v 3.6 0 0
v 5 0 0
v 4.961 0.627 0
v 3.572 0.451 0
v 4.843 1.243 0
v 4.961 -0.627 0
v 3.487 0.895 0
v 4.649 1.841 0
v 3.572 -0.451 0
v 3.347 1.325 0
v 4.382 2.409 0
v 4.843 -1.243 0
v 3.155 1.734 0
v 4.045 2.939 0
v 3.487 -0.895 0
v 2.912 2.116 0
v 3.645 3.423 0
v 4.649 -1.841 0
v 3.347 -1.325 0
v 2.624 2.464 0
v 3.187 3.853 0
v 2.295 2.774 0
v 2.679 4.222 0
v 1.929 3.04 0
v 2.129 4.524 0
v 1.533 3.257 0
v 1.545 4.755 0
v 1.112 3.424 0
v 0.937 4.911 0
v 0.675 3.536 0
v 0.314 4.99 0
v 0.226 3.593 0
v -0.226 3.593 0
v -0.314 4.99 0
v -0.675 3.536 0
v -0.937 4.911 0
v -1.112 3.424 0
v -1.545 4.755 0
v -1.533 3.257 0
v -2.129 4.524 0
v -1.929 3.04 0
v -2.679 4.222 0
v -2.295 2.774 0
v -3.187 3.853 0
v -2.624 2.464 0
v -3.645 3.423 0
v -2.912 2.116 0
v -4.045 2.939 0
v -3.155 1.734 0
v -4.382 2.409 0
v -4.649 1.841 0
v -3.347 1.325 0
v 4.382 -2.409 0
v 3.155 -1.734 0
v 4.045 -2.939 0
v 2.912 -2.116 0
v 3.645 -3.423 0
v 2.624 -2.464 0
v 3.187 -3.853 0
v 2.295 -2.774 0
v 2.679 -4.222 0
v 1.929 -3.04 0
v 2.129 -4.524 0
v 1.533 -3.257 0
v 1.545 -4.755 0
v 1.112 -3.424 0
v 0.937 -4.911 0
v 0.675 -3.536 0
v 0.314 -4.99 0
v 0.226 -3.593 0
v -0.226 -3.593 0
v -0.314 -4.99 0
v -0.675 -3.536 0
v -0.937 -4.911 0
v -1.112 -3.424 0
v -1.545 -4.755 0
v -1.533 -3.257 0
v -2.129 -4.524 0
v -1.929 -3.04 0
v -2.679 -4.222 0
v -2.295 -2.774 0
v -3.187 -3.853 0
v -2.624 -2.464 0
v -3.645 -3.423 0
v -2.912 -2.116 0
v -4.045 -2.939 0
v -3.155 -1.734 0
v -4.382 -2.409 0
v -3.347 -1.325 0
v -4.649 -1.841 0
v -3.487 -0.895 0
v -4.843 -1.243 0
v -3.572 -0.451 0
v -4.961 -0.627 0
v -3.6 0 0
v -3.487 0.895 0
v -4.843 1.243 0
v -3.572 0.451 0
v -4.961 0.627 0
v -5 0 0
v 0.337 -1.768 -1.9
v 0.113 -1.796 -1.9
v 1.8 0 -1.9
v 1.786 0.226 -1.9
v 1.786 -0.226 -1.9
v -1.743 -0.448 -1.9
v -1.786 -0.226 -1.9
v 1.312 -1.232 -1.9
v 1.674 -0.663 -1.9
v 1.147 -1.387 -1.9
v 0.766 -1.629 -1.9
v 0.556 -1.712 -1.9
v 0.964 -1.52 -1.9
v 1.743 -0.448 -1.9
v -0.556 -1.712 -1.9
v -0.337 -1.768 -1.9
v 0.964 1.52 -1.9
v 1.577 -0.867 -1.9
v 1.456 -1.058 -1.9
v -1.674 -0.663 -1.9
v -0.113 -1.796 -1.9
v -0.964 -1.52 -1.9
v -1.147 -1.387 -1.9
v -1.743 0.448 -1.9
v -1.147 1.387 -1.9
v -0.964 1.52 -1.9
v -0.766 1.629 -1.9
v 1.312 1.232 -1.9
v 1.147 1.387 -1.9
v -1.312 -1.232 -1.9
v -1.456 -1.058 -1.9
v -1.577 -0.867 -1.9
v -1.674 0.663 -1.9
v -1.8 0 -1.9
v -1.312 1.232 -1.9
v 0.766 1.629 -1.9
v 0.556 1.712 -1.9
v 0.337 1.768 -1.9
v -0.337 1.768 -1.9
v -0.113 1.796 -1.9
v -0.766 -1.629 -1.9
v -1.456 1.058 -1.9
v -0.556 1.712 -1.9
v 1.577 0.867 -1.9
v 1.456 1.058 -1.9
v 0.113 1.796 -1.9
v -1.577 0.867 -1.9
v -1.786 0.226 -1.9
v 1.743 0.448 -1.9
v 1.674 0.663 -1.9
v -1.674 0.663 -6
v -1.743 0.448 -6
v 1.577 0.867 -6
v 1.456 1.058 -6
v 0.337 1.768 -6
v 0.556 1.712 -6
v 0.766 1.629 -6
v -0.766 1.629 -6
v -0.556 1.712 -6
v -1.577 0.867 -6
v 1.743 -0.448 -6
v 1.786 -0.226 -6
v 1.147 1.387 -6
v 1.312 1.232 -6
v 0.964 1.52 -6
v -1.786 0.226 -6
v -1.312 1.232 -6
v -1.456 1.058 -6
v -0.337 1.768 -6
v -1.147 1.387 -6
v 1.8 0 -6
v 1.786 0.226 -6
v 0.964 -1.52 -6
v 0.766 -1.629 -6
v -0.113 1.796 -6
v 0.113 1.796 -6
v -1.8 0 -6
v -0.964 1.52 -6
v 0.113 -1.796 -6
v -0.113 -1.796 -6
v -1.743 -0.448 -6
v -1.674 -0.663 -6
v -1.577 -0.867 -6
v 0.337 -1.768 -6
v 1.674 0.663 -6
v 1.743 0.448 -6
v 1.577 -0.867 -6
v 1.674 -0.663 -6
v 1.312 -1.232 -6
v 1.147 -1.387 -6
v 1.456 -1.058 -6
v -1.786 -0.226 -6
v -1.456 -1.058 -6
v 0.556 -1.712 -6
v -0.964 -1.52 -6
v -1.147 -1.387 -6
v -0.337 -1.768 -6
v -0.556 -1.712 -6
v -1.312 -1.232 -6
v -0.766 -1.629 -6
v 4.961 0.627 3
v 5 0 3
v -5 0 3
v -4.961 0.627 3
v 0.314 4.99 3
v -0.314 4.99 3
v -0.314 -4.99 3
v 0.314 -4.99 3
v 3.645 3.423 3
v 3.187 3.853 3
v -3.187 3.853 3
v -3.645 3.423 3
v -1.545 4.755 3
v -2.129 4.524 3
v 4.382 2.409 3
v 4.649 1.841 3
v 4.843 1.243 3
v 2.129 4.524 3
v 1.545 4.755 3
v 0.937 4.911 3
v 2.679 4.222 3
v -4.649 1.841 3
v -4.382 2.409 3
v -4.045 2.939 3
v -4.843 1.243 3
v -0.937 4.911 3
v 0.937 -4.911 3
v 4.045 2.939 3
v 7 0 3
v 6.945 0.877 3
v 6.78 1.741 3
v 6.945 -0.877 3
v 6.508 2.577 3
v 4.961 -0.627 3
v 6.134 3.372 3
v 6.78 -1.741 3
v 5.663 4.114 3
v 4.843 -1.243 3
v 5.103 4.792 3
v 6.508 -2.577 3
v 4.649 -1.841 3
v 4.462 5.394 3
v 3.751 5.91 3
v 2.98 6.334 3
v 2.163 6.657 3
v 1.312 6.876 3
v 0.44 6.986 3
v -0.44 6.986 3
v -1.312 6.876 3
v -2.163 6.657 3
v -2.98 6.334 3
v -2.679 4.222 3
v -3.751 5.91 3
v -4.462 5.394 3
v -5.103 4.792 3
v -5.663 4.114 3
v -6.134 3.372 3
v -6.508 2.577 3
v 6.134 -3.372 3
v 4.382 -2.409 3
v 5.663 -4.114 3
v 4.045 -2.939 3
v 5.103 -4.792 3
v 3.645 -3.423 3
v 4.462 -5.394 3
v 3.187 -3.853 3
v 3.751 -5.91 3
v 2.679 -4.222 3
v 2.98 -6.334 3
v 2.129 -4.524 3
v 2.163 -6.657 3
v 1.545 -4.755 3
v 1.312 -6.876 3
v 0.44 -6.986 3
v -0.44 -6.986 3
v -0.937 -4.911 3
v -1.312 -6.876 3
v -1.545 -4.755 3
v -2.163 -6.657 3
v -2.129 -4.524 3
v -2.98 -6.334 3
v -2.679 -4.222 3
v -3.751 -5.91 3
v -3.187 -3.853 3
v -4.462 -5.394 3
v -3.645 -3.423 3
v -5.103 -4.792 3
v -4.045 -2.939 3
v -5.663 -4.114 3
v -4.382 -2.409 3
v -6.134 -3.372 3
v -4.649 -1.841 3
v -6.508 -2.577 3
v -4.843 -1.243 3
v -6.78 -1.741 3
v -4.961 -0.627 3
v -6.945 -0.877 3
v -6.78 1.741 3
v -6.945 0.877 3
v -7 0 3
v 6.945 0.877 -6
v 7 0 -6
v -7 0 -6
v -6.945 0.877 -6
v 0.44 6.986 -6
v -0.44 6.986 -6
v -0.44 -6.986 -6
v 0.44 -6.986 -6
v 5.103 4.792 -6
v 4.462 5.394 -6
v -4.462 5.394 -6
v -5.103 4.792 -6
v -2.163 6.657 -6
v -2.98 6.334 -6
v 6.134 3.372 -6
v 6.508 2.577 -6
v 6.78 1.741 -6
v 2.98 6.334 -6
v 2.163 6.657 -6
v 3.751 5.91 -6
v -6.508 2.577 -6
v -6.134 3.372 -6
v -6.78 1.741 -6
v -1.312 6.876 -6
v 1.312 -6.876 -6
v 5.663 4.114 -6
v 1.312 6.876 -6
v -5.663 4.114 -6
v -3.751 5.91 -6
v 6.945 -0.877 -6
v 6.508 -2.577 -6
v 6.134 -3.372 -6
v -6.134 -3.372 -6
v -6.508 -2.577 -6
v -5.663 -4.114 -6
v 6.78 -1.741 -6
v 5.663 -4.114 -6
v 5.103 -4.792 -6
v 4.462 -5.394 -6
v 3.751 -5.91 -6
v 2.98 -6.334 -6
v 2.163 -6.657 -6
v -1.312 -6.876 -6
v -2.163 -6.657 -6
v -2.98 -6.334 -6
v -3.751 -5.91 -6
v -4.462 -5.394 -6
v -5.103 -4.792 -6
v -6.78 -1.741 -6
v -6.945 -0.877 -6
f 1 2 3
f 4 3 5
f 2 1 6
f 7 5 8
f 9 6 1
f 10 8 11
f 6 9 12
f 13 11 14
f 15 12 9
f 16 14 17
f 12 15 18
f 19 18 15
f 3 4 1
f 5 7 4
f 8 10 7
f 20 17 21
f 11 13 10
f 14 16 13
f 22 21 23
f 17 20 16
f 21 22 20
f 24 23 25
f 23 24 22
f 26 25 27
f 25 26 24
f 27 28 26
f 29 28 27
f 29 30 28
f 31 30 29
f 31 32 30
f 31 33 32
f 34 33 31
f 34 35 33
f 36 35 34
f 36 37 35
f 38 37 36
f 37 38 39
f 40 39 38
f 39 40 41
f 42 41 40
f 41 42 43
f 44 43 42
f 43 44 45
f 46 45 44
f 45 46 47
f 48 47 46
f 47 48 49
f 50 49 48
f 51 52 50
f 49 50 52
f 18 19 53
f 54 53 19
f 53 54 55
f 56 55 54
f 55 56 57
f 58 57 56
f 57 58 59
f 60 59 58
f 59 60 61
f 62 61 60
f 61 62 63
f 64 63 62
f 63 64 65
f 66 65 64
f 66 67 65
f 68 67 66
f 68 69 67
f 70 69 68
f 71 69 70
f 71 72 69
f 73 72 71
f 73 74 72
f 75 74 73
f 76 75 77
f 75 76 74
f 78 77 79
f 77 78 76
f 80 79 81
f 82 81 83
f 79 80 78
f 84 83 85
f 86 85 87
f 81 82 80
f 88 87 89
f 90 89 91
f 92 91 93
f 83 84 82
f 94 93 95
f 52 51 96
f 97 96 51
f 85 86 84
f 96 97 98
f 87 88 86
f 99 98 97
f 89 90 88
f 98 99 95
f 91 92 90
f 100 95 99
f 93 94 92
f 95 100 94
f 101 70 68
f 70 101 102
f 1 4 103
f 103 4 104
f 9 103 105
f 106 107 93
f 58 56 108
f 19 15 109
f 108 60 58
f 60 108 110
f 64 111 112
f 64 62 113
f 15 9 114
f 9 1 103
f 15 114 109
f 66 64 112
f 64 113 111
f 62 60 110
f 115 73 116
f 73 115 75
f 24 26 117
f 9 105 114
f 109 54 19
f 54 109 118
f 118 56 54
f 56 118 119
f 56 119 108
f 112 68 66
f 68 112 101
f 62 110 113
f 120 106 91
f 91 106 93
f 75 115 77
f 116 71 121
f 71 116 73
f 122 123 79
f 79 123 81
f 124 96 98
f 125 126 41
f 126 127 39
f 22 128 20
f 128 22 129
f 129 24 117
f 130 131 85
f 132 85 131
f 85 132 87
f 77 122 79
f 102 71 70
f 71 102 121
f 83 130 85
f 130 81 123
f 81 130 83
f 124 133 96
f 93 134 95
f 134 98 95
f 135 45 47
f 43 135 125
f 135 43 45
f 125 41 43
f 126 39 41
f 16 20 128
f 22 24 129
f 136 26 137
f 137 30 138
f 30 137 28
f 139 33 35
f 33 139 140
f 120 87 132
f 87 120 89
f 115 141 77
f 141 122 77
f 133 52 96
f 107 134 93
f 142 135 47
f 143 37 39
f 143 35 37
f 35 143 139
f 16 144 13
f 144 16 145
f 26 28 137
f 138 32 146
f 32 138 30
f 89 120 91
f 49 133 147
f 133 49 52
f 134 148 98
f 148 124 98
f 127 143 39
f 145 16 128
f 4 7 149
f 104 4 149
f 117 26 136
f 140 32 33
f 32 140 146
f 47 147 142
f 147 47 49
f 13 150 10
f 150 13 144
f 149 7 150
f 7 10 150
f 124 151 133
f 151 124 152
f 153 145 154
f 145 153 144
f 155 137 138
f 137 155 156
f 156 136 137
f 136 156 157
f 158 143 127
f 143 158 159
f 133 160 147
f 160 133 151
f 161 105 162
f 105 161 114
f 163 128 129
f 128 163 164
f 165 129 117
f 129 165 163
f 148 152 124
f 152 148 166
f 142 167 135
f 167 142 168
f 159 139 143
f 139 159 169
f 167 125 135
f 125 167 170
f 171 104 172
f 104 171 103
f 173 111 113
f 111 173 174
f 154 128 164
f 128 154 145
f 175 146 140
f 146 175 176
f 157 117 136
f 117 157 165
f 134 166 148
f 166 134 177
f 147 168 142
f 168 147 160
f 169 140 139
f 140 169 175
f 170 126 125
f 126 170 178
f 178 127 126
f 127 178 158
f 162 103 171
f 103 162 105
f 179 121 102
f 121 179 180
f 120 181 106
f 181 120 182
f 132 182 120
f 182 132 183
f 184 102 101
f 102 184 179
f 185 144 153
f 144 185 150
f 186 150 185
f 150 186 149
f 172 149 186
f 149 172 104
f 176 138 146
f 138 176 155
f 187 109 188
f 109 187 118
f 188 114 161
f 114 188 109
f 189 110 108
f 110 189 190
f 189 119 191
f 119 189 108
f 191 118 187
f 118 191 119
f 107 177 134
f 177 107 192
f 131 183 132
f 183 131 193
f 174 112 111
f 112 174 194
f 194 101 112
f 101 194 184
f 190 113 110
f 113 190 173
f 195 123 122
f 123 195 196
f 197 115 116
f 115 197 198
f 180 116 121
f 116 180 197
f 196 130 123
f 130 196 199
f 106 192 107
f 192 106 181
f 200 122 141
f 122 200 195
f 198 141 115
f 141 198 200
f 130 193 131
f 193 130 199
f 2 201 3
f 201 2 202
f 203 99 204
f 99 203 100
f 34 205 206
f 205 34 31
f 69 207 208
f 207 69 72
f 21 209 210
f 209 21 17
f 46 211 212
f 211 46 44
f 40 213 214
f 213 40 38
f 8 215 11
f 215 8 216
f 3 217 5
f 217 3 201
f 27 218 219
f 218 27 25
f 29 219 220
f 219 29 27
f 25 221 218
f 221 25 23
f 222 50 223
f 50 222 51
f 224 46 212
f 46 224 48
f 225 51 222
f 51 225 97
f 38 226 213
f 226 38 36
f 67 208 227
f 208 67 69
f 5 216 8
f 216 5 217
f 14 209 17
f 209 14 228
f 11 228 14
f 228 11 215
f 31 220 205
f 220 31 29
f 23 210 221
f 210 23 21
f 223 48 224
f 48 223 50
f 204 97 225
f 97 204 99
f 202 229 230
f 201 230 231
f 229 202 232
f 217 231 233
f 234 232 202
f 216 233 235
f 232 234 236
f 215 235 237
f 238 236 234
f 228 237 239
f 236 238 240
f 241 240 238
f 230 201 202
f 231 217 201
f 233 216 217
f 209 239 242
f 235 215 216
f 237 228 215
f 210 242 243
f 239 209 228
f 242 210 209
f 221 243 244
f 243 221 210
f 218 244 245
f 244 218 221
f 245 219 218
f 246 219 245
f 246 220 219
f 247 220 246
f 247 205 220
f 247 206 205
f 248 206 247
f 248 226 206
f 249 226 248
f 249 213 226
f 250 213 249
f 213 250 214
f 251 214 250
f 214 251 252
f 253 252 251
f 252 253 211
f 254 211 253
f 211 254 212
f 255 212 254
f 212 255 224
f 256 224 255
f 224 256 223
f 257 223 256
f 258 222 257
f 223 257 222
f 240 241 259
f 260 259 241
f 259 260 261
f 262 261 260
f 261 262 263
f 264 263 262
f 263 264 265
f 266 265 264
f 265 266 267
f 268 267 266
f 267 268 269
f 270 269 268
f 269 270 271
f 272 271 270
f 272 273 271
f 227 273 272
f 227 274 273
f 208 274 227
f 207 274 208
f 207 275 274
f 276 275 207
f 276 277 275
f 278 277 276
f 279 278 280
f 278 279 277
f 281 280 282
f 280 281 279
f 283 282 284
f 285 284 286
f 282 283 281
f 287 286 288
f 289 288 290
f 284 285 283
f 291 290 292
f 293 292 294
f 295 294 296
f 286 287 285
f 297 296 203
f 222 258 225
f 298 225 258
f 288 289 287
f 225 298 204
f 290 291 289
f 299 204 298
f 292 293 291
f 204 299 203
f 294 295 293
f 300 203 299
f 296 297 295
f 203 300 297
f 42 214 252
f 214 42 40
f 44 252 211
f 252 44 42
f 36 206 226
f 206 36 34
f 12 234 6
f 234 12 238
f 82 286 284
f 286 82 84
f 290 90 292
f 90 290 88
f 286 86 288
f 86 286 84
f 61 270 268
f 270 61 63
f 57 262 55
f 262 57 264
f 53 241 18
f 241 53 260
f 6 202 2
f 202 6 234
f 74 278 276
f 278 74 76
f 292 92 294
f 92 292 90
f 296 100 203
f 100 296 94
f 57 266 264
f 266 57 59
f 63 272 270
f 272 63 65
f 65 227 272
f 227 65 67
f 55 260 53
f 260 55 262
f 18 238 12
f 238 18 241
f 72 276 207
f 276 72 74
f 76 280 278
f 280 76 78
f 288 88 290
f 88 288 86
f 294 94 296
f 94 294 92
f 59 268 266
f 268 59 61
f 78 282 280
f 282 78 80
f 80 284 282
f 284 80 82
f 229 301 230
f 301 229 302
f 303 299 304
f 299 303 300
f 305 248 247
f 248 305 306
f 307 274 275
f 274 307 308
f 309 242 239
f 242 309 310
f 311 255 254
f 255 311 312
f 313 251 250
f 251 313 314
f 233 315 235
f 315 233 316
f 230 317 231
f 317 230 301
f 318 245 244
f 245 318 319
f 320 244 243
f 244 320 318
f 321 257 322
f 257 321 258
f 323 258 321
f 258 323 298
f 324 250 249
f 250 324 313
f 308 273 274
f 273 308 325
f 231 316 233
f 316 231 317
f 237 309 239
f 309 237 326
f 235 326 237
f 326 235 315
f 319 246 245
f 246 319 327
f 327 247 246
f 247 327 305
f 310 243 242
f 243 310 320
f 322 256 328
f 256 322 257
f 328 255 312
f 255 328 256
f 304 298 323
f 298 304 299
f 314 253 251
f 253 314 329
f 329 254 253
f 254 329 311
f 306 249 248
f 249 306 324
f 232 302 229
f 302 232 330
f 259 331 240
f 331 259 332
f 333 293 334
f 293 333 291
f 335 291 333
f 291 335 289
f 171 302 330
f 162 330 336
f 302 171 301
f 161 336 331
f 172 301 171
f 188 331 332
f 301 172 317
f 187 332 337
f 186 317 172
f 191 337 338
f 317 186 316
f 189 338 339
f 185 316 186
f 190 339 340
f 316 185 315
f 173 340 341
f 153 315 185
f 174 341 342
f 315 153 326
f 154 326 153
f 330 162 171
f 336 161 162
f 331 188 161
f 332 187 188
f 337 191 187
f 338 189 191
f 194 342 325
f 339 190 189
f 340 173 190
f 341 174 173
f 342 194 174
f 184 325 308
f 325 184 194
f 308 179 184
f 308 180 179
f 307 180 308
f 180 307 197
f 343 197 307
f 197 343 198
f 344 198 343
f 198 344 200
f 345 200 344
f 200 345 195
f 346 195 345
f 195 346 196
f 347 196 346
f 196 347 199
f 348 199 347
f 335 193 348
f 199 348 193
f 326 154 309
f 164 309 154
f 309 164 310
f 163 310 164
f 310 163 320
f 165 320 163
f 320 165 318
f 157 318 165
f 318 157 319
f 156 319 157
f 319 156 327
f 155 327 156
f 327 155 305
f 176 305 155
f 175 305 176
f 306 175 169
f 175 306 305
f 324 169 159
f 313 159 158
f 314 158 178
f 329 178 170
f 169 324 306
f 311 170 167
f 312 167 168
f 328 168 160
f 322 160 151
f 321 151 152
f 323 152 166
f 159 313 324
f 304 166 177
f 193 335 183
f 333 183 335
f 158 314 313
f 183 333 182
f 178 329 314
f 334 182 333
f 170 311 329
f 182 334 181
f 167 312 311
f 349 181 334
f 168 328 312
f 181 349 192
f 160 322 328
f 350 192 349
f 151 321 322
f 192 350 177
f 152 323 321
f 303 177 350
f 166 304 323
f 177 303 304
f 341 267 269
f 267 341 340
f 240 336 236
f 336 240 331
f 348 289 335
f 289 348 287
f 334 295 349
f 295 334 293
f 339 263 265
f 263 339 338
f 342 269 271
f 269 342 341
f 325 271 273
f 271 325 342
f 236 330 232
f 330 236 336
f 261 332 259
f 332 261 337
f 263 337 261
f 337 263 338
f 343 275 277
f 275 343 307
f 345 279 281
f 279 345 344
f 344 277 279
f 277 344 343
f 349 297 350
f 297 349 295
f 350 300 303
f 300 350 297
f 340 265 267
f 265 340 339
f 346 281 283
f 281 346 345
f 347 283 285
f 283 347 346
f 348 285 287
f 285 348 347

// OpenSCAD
$fn = 50;


difference() {
	union() {
		translate(v = [0, 0, -6.0000000000]) {
			cylinder(h = 9, r = 7.0000000000);
		}
	}
	union() {
		translate(v = [0, 0, 0]) {
			rotate(a = [0, 0, 0]) {
				difference() {
					union() {
						translate(v = [0, 0, -9.0000000000]) {
							cylinder(h = 9, r = 1.5000000000);
						}
						translate(v = [0, 0, -1.9000000000]) {
							cylinder(h = 1.9000000000, r1 = 1.8000000000, r2 = 3.6000000000);
						}
						translate(v = [0, 0, -9.0000000000]) {
							cylinder(h = 9, r = 1.8000000000);
						}
						translate(v = [0, 0, -9.0000000000]) {
							cylinder(h = 9, r = 1.5000000000);
						}
					}
					union();
				}
			}
		}
		#cylinder(h = 3, r = 5.0000000000);
	}
}
